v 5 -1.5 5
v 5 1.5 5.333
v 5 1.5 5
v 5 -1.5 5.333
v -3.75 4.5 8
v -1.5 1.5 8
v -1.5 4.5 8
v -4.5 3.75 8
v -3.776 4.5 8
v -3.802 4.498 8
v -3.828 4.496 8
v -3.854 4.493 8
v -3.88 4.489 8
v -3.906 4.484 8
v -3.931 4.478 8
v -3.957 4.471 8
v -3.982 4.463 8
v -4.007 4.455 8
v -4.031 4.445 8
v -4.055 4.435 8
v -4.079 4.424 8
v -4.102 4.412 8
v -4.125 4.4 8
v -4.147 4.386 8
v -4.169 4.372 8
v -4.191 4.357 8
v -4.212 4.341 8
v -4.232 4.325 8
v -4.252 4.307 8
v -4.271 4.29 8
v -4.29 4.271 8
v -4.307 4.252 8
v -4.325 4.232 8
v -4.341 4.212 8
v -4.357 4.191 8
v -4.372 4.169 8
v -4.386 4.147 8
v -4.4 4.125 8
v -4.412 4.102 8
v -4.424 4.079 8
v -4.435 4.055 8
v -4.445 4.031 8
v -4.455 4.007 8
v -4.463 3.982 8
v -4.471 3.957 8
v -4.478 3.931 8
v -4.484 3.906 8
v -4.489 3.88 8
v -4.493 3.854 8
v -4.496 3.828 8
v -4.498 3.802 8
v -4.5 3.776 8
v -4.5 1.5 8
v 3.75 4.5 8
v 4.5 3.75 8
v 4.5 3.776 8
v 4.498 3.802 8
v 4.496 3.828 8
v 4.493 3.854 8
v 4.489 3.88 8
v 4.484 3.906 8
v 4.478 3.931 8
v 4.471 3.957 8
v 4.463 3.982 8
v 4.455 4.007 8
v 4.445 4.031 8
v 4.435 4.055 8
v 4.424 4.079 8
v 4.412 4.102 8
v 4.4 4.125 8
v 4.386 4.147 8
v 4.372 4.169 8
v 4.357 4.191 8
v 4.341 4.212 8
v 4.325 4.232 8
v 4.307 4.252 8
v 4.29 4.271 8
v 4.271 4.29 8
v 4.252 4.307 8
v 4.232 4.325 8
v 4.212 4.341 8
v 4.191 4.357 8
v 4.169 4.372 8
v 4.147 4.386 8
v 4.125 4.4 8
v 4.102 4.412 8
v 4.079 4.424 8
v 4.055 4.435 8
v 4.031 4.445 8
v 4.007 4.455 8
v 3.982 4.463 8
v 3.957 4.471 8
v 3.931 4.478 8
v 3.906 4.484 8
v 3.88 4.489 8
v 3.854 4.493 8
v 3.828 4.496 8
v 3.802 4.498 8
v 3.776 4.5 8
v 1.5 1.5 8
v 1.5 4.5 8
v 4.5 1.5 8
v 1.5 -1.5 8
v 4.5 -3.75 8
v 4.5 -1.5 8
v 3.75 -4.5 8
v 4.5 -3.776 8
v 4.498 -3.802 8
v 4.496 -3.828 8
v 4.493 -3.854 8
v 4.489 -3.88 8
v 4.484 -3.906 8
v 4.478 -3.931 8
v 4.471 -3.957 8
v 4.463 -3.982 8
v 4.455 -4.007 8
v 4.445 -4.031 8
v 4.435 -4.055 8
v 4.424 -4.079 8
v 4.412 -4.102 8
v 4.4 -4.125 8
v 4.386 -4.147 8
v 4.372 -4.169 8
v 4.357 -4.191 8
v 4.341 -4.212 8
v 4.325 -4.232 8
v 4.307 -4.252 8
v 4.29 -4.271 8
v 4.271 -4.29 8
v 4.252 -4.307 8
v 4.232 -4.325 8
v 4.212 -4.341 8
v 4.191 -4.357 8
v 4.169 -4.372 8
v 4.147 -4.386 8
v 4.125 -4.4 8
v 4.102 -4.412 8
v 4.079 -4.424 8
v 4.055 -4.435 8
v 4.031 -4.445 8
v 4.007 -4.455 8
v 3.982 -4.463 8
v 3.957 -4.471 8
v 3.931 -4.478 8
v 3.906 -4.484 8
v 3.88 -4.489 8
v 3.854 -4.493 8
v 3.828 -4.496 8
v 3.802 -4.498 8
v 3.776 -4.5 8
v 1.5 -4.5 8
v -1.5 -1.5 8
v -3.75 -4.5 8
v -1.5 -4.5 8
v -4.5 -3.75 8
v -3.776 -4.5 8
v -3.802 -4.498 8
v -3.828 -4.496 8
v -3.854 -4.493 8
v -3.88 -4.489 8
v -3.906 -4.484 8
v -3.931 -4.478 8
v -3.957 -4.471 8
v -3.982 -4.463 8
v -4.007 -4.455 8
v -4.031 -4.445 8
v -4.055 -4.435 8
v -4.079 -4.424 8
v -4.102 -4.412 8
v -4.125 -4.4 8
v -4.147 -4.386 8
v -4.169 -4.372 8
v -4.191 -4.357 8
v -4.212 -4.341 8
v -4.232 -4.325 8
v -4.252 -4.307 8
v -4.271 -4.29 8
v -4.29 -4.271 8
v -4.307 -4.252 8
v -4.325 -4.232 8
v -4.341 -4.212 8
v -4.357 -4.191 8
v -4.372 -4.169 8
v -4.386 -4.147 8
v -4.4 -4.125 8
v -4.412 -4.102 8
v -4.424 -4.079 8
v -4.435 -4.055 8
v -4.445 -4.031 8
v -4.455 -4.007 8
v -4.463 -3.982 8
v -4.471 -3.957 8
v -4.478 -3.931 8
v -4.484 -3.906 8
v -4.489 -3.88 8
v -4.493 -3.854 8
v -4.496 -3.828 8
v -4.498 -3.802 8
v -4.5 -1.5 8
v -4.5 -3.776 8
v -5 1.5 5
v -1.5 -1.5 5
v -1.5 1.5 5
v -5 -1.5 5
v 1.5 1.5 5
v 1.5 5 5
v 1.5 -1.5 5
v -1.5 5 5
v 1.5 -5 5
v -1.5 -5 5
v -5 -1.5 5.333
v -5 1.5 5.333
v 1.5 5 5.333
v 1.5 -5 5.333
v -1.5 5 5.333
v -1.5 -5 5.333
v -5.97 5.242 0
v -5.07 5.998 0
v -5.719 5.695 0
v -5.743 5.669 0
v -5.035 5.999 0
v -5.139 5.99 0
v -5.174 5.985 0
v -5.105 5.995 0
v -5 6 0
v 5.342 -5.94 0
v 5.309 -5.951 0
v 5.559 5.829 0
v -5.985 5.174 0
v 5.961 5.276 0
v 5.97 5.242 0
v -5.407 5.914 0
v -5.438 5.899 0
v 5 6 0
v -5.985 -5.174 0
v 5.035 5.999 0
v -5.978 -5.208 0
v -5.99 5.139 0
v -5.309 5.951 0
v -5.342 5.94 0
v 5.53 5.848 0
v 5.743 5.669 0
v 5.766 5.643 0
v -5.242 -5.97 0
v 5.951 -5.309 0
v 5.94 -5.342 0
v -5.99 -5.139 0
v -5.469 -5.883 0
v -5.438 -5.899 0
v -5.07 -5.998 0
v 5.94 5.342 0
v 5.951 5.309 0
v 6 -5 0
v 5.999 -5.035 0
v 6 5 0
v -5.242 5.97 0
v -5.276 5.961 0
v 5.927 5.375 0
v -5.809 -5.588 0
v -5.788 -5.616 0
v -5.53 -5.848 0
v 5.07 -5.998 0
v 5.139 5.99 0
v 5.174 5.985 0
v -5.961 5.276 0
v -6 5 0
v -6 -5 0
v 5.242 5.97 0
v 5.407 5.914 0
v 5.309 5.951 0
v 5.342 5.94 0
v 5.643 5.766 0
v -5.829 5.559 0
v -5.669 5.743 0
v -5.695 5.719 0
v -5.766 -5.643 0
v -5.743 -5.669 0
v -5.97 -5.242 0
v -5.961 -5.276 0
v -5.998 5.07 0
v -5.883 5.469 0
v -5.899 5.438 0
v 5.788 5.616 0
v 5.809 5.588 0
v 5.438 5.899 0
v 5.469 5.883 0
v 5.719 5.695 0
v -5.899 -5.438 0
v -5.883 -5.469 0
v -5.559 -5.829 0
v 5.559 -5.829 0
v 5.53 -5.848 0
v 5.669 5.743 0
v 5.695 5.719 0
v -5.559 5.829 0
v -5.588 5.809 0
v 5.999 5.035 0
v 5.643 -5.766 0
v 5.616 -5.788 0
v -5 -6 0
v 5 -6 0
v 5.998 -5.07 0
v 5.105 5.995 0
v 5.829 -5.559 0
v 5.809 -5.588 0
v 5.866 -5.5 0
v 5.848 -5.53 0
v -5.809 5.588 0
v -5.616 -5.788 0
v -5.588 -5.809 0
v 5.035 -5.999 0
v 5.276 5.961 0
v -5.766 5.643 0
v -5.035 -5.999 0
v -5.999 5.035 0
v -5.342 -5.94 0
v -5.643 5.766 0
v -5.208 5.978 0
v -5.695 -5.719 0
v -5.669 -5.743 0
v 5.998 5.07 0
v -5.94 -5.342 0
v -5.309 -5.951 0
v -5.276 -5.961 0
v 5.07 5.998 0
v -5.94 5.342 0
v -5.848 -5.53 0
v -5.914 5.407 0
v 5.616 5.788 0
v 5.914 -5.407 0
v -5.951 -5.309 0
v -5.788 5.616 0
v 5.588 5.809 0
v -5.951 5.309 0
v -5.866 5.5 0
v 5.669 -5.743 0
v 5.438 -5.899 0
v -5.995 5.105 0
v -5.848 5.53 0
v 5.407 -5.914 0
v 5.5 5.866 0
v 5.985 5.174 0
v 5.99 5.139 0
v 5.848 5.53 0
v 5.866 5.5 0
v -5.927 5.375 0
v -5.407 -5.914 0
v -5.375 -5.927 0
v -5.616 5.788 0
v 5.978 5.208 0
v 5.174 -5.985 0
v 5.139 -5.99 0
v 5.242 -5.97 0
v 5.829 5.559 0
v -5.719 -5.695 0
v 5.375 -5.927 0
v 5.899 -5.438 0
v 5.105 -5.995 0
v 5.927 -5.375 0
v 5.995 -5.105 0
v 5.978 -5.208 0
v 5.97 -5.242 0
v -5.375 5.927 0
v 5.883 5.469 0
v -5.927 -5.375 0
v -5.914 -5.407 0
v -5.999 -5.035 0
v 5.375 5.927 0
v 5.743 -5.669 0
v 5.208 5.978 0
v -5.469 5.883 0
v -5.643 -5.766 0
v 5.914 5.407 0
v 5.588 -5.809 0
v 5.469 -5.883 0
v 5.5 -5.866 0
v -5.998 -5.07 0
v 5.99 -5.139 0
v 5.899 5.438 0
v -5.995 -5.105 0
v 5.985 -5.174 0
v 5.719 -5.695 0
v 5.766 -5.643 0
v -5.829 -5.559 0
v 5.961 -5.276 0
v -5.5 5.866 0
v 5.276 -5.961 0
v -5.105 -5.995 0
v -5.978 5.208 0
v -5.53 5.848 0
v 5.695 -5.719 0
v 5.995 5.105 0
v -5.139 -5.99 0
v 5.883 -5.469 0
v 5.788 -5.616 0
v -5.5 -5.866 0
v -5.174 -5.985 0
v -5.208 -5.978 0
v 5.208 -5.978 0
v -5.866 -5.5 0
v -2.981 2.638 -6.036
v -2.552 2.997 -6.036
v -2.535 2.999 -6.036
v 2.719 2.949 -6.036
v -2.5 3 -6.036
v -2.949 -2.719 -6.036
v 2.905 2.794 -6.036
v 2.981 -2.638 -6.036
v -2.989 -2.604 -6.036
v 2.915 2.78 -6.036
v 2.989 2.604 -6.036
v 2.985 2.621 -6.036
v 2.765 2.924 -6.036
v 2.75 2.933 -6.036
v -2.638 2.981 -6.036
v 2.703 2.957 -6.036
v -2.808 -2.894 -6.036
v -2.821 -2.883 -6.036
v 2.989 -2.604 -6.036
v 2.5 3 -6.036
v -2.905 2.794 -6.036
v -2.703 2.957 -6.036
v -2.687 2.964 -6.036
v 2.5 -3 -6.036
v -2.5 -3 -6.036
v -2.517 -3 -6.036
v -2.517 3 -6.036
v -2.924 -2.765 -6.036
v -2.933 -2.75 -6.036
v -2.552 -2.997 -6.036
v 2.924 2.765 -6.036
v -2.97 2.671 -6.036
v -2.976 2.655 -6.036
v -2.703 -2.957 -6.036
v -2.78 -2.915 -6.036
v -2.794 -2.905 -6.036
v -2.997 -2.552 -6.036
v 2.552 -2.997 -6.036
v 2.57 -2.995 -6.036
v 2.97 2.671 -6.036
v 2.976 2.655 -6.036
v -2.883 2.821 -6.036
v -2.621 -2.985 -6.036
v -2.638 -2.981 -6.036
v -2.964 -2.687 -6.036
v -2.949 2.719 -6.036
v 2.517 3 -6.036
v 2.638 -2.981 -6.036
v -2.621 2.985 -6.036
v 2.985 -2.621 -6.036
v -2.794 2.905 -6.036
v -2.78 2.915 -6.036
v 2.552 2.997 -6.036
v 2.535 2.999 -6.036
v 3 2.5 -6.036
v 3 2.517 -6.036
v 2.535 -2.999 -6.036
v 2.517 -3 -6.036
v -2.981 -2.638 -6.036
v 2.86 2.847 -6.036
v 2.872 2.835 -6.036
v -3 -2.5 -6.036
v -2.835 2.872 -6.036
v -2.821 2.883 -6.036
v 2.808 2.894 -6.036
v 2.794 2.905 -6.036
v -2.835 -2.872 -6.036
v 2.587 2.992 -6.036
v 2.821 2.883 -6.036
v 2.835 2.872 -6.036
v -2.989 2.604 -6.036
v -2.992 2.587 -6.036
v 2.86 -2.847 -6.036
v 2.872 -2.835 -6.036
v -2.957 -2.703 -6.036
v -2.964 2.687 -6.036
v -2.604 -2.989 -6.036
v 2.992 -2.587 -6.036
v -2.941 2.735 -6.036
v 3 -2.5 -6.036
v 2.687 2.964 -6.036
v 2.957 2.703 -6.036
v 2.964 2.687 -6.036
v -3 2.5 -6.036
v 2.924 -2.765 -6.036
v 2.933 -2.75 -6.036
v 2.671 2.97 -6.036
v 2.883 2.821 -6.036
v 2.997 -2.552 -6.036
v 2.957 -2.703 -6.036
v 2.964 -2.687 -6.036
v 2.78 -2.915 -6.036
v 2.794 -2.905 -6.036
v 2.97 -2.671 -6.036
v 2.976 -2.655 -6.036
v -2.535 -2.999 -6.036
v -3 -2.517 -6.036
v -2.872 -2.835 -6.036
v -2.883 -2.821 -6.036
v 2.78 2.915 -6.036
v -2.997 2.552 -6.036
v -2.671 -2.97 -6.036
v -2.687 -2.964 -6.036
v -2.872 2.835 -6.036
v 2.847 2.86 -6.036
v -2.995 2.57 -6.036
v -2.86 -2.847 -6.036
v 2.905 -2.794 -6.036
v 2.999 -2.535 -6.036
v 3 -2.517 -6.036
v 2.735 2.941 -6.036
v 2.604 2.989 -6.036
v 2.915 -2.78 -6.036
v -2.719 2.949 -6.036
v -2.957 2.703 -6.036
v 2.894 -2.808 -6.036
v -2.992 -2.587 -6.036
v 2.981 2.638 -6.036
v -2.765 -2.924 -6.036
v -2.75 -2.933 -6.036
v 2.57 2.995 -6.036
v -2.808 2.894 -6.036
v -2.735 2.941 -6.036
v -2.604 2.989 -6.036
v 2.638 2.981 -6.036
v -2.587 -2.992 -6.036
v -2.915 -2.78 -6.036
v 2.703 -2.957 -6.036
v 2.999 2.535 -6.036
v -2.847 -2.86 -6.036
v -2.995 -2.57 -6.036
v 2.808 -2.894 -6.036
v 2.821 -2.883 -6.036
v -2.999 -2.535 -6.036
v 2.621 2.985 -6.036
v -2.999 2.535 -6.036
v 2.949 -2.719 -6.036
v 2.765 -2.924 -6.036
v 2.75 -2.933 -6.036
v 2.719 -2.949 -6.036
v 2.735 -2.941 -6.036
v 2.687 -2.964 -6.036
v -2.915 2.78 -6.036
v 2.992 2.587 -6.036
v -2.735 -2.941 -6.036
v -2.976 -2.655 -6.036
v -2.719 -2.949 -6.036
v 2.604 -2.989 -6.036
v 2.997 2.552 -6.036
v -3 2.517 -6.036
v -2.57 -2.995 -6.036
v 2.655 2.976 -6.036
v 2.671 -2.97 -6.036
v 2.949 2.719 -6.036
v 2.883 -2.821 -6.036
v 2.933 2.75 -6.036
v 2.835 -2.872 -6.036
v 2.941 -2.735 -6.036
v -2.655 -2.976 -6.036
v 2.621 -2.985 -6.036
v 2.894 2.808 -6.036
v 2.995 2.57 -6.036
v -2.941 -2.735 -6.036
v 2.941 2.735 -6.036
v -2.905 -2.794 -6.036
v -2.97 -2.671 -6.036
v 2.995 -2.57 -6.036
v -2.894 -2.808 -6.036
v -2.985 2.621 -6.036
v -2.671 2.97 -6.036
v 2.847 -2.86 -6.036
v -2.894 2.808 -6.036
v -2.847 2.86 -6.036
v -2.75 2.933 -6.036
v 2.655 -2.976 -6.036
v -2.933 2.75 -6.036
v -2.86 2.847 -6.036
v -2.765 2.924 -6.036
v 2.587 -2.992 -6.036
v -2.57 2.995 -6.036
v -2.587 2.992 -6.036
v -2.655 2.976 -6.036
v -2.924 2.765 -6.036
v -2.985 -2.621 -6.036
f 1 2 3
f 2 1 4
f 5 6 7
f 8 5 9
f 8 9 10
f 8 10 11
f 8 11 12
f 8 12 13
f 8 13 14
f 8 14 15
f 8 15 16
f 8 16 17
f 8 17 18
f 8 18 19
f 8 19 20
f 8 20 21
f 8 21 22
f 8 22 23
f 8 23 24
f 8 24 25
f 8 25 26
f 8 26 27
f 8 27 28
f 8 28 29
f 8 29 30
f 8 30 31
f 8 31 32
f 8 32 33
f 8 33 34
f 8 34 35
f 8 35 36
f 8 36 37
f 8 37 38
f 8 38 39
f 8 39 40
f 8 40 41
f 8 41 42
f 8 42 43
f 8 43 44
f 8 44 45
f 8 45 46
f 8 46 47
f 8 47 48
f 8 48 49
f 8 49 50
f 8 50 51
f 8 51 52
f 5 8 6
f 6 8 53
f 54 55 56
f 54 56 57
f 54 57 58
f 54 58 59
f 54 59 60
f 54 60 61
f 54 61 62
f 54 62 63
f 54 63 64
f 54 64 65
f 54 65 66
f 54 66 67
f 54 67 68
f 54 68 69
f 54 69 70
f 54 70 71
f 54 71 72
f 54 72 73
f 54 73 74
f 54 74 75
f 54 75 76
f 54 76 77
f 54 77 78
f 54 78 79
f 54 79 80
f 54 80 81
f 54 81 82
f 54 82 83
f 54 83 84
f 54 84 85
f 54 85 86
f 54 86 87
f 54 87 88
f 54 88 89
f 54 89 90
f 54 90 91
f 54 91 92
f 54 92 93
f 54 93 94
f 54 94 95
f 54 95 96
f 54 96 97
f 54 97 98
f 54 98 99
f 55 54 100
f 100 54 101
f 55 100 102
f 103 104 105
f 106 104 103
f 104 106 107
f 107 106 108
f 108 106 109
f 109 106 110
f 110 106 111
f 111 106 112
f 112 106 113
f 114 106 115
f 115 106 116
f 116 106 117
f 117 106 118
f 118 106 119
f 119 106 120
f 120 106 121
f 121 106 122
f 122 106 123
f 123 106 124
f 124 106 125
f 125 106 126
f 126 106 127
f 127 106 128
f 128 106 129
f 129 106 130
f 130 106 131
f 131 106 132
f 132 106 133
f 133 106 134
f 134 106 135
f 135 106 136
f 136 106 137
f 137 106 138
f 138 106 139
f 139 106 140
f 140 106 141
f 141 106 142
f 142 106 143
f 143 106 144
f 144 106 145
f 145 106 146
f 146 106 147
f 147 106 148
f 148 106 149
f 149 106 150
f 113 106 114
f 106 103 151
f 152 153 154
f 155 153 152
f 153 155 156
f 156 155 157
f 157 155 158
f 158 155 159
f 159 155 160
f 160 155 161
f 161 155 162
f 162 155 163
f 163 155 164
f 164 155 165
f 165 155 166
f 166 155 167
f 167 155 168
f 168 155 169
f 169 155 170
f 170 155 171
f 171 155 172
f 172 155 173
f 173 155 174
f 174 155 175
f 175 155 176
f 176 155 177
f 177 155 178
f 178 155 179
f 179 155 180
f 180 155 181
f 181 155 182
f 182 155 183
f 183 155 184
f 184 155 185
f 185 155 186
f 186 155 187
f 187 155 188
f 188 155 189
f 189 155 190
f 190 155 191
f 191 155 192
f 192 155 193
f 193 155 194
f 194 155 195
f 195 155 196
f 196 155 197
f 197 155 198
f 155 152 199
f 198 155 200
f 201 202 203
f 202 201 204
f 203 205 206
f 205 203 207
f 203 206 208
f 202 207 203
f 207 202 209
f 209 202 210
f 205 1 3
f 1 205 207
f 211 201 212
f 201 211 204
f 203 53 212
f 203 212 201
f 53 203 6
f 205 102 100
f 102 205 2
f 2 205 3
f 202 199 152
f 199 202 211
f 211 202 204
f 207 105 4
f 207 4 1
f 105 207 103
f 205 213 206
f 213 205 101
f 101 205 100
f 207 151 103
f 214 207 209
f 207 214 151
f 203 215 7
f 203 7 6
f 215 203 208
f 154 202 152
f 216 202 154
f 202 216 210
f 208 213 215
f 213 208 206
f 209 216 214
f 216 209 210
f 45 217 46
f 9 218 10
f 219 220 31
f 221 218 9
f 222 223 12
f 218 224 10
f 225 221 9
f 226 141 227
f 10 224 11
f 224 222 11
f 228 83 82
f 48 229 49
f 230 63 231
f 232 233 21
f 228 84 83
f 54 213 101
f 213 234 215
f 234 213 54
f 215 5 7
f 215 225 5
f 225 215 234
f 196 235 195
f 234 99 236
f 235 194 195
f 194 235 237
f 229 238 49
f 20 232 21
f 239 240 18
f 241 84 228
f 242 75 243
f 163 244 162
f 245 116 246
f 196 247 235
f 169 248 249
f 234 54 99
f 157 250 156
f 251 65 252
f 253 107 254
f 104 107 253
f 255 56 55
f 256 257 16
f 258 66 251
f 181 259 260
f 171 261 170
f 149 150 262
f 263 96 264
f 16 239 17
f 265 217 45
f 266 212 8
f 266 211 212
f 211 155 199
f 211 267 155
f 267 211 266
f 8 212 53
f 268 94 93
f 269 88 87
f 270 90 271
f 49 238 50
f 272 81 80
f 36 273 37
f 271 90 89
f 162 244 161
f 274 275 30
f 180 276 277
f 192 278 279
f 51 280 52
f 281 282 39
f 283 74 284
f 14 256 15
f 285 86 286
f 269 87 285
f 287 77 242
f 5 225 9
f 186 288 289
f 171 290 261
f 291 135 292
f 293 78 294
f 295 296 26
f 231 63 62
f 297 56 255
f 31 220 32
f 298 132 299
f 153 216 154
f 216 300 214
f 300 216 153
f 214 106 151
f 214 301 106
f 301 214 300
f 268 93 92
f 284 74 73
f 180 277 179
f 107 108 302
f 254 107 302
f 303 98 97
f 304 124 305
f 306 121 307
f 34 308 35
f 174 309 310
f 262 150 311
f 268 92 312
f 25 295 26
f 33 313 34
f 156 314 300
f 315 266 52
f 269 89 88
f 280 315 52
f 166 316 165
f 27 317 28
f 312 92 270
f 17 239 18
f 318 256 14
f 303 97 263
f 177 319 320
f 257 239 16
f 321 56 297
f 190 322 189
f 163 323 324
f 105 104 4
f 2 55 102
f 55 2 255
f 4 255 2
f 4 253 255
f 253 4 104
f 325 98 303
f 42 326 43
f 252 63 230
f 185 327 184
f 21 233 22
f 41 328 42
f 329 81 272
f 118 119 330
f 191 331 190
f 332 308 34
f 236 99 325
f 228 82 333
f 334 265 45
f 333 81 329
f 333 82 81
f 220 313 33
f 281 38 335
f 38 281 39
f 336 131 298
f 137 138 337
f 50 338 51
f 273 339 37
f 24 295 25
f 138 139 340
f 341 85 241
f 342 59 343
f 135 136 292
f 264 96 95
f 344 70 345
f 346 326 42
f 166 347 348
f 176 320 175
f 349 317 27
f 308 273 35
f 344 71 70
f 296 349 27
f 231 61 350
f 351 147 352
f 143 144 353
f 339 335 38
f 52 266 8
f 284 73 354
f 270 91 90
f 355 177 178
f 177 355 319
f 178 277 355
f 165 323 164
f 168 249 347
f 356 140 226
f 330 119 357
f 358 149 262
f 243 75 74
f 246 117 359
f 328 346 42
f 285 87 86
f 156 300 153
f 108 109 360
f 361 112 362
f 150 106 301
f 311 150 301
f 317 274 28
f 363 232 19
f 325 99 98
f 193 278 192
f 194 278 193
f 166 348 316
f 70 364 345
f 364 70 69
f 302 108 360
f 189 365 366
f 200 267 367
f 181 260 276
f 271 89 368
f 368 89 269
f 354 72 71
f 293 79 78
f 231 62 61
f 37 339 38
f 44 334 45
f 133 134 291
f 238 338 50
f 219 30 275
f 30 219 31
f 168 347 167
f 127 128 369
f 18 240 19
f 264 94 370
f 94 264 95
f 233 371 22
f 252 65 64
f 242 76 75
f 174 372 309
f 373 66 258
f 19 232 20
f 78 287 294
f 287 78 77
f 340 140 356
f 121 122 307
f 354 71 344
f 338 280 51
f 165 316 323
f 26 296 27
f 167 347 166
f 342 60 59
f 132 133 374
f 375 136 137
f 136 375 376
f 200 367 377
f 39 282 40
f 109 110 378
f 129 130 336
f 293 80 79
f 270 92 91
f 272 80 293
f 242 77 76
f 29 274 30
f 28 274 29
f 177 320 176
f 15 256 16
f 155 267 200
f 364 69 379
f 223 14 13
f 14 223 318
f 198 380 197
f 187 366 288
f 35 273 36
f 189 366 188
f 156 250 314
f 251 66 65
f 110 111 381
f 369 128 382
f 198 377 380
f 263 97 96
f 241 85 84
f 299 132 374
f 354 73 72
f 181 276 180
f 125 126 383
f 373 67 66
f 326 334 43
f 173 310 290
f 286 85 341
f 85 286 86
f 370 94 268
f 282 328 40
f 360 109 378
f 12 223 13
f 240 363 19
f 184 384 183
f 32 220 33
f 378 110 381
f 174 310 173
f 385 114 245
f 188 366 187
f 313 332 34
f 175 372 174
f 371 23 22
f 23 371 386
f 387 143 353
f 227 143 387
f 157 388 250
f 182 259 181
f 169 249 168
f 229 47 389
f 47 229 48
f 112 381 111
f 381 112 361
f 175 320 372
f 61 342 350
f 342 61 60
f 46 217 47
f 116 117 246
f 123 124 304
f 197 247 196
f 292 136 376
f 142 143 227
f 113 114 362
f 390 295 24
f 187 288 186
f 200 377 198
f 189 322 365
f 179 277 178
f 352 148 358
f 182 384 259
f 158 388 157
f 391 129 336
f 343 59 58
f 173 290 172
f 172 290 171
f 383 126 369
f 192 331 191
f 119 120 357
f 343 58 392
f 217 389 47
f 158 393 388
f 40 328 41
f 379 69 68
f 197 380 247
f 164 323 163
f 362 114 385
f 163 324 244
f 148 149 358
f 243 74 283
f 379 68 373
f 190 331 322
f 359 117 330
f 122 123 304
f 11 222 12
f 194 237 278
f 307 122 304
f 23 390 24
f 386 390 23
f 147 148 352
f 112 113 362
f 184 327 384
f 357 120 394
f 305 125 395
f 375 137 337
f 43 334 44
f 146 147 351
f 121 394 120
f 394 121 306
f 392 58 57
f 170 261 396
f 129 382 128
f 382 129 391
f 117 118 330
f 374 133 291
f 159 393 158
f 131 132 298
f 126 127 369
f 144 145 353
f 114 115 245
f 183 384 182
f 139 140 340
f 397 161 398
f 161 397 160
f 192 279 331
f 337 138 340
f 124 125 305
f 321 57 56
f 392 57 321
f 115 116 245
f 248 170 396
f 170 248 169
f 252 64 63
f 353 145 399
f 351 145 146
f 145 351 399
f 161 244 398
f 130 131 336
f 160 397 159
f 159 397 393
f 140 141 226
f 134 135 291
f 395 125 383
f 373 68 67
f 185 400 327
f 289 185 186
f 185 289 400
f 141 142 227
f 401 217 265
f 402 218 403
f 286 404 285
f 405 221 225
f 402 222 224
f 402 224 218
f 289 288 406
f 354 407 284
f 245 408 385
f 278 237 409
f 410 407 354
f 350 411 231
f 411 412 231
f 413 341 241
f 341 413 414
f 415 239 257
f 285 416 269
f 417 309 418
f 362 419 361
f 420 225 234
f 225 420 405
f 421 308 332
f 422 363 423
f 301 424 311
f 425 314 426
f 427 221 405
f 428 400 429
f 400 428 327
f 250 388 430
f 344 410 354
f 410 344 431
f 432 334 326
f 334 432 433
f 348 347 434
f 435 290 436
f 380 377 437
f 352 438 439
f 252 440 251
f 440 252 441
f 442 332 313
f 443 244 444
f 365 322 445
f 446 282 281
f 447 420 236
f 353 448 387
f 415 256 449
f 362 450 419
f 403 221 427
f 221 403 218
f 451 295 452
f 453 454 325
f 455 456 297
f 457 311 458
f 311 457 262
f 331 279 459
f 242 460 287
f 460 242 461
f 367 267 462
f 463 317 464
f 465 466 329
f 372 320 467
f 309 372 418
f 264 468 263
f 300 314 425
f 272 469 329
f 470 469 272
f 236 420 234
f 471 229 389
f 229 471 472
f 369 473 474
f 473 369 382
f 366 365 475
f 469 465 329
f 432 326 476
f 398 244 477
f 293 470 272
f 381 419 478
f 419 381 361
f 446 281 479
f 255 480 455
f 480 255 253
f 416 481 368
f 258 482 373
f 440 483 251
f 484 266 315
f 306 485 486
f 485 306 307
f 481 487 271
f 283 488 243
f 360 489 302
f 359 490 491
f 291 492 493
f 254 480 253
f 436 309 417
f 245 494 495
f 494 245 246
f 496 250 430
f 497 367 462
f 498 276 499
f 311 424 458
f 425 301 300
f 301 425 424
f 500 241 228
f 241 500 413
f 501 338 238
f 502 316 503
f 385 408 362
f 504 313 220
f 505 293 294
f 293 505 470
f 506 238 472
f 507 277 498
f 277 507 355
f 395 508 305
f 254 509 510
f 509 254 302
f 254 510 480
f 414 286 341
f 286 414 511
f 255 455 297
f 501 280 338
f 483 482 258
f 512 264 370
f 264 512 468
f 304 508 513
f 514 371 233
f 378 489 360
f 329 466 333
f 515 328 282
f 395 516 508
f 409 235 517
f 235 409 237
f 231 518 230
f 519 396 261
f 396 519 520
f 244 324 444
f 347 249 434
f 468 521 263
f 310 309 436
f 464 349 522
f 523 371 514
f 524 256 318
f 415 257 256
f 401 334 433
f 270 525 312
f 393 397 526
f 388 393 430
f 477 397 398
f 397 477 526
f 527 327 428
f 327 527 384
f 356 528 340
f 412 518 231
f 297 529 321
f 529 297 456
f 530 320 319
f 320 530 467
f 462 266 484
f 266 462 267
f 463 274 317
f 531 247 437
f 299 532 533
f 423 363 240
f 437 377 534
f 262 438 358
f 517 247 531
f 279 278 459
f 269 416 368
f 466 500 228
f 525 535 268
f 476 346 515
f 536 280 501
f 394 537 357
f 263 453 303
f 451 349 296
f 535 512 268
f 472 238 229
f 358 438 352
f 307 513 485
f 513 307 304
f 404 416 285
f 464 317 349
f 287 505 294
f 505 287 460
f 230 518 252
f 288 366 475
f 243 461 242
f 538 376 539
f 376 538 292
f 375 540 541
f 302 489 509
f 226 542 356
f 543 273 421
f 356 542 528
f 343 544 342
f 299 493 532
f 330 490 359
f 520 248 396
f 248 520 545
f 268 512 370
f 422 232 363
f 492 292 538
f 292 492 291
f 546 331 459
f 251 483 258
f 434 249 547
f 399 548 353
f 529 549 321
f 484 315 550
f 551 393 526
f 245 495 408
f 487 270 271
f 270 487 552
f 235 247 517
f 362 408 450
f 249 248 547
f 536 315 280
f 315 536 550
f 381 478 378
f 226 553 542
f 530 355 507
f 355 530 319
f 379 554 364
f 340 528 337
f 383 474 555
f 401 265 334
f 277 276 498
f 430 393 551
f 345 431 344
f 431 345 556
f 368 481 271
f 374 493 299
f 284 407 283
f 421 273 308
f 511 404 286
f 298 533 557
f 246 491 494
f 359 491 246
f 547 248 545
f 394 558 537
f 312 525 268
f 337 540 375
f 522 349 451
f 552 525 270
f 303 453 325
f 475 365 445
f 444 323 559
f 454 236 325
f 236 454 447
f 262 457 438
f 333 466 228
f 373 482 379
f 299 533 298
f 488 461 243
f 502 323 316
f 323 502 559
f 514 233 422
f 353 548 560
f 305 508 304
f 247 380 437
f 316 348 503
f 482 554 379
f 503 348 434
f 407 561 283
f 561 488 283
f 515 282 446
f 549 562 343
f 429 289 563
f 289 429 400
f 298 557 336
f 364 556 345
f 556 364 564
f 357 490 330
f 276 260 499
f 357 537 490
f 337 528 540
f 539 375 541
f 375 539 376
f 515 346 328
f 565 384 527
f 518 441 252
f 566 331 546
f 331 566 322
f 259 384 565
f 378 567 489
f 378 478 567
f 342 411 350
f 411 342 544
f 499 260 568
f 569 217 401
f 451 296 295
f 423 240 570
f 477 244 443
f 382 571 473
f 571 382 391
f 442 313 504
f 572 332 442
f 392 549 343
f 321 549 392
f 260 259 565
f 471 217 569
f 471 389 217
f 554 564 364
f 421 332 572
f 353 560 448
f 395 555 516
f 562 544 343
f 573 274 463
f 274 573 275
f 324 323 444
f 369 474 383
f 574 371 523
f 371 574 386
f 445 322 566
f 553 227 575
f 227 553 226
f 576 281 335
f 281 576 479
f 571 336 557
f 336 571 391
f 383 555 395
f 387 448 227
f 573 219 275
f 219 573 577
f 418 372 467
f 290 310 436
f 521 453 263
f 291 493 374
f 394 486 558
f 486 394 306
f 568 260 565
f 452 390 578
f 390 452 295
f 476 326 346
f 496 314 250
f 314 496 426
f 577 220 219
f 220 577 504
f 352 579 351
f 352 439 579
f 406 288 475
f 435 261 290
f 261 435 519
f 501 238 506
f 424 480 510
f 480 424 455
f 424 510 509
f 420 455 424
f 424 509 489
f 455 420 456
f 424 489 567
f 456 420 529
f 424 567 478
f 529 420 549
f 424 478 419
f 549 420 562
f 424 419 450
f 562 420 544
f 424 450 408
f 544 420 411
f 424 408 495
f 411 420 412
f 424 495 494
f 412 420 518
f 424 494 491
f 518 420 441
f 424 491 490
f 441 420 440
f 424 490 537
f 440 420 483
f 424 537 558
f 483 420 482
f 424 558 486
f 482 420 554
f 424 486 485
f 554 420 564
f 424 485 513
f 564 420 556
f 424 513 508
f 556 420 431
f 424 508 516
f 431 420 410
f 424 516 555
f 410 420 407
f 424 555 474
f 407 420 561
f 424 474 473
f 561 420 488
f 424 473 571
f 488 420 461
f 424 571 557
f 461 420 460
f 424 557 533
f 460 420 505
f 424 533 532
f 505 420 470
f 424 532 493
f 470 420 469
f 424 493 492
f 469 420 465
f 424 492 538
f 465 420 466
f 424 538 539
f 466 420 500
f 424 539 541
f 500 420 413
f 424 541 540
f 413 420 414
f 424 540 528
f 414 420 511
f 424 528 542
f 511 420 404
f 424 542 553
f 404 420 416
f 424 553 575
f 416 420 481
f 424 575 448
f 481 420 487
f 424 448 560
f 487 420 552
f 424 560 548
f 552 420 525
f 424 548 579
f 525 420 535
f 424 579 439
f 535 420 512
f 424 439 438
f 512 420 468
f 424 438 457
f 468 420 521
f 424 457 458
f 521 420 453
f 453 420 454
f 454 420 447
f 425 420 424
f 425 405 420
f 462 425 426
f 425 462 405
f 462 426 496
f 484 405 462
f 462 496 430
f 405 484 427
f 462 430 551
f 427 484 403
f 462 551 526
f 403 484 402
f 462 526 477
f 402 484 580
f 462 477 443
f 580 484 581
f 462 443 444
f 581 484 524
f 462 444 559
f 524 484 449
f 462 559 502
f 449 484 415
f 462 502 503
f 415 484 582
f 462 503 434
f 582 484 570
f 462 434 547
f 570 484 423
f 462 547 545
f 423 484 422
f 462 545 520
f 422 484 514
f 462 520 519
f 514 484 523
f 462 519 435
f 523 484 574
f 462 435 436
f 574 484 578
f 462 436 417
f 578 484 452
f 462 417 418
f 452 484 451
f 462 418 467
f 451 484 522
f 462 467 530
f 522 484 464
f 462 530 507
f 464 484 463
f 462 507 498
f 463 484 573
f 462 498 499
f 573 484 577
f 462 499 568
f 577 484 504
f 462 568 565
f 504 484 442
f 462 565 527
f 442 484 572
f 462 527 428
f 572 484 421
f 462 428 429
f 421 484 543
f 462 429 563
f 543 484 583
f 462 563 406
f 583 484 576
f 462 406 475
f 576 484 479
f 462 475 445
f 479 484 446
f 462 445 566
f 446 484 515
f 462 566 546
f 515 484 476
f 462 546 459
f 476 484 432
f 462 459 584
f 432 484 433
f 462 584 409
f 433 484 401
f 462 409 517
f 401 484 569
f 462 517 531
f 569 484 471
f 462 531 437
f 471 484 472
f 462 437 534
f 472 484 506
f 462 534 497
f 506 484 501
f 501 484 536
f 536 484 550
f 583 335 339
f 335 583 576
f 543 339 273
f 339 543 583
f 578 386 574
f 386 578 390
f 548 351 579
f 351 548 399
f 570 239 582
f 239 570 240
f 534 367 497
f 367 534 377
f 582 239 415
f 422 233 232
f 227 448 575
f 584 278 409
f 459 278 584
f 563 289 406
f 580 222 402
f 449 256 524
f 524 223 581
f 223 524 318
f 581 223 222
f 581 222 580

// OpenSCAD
m =  1;              // minkowski radius
h = 32;              // Height of spike
e =  5;              // Edge length of a spike
c = e*(1 + sqrt(2)); // Largest coordinate for Rhombicuboctahedron
j =  8;              // Height of clip spike

b = 3;               // board thickness
w = 2;               // clip wall
l = 3;               // clip wall depth

mirror([0,0,1])
  linear_extrude(height=0.5*c,scale=0.5)
    minkowski() {
      polygon([[e,e],[e,-e],[-e,-e],[-e,e]]);
      circle(r = m, $fn=180);
    }

difference(){
  linear_extrude(height=j,scale=1 - j/h)
    minkowski() {
      polygon([[e,e],[e,-e],[-e,-e],[-e,e]]);
      circle(r = m, $fn=180);
    }
    
  translate([0,0,j-l/2]) {
    cube([2*e,b,l], center=true);
    cube([b,2*e,l], center=true);
  }
}
